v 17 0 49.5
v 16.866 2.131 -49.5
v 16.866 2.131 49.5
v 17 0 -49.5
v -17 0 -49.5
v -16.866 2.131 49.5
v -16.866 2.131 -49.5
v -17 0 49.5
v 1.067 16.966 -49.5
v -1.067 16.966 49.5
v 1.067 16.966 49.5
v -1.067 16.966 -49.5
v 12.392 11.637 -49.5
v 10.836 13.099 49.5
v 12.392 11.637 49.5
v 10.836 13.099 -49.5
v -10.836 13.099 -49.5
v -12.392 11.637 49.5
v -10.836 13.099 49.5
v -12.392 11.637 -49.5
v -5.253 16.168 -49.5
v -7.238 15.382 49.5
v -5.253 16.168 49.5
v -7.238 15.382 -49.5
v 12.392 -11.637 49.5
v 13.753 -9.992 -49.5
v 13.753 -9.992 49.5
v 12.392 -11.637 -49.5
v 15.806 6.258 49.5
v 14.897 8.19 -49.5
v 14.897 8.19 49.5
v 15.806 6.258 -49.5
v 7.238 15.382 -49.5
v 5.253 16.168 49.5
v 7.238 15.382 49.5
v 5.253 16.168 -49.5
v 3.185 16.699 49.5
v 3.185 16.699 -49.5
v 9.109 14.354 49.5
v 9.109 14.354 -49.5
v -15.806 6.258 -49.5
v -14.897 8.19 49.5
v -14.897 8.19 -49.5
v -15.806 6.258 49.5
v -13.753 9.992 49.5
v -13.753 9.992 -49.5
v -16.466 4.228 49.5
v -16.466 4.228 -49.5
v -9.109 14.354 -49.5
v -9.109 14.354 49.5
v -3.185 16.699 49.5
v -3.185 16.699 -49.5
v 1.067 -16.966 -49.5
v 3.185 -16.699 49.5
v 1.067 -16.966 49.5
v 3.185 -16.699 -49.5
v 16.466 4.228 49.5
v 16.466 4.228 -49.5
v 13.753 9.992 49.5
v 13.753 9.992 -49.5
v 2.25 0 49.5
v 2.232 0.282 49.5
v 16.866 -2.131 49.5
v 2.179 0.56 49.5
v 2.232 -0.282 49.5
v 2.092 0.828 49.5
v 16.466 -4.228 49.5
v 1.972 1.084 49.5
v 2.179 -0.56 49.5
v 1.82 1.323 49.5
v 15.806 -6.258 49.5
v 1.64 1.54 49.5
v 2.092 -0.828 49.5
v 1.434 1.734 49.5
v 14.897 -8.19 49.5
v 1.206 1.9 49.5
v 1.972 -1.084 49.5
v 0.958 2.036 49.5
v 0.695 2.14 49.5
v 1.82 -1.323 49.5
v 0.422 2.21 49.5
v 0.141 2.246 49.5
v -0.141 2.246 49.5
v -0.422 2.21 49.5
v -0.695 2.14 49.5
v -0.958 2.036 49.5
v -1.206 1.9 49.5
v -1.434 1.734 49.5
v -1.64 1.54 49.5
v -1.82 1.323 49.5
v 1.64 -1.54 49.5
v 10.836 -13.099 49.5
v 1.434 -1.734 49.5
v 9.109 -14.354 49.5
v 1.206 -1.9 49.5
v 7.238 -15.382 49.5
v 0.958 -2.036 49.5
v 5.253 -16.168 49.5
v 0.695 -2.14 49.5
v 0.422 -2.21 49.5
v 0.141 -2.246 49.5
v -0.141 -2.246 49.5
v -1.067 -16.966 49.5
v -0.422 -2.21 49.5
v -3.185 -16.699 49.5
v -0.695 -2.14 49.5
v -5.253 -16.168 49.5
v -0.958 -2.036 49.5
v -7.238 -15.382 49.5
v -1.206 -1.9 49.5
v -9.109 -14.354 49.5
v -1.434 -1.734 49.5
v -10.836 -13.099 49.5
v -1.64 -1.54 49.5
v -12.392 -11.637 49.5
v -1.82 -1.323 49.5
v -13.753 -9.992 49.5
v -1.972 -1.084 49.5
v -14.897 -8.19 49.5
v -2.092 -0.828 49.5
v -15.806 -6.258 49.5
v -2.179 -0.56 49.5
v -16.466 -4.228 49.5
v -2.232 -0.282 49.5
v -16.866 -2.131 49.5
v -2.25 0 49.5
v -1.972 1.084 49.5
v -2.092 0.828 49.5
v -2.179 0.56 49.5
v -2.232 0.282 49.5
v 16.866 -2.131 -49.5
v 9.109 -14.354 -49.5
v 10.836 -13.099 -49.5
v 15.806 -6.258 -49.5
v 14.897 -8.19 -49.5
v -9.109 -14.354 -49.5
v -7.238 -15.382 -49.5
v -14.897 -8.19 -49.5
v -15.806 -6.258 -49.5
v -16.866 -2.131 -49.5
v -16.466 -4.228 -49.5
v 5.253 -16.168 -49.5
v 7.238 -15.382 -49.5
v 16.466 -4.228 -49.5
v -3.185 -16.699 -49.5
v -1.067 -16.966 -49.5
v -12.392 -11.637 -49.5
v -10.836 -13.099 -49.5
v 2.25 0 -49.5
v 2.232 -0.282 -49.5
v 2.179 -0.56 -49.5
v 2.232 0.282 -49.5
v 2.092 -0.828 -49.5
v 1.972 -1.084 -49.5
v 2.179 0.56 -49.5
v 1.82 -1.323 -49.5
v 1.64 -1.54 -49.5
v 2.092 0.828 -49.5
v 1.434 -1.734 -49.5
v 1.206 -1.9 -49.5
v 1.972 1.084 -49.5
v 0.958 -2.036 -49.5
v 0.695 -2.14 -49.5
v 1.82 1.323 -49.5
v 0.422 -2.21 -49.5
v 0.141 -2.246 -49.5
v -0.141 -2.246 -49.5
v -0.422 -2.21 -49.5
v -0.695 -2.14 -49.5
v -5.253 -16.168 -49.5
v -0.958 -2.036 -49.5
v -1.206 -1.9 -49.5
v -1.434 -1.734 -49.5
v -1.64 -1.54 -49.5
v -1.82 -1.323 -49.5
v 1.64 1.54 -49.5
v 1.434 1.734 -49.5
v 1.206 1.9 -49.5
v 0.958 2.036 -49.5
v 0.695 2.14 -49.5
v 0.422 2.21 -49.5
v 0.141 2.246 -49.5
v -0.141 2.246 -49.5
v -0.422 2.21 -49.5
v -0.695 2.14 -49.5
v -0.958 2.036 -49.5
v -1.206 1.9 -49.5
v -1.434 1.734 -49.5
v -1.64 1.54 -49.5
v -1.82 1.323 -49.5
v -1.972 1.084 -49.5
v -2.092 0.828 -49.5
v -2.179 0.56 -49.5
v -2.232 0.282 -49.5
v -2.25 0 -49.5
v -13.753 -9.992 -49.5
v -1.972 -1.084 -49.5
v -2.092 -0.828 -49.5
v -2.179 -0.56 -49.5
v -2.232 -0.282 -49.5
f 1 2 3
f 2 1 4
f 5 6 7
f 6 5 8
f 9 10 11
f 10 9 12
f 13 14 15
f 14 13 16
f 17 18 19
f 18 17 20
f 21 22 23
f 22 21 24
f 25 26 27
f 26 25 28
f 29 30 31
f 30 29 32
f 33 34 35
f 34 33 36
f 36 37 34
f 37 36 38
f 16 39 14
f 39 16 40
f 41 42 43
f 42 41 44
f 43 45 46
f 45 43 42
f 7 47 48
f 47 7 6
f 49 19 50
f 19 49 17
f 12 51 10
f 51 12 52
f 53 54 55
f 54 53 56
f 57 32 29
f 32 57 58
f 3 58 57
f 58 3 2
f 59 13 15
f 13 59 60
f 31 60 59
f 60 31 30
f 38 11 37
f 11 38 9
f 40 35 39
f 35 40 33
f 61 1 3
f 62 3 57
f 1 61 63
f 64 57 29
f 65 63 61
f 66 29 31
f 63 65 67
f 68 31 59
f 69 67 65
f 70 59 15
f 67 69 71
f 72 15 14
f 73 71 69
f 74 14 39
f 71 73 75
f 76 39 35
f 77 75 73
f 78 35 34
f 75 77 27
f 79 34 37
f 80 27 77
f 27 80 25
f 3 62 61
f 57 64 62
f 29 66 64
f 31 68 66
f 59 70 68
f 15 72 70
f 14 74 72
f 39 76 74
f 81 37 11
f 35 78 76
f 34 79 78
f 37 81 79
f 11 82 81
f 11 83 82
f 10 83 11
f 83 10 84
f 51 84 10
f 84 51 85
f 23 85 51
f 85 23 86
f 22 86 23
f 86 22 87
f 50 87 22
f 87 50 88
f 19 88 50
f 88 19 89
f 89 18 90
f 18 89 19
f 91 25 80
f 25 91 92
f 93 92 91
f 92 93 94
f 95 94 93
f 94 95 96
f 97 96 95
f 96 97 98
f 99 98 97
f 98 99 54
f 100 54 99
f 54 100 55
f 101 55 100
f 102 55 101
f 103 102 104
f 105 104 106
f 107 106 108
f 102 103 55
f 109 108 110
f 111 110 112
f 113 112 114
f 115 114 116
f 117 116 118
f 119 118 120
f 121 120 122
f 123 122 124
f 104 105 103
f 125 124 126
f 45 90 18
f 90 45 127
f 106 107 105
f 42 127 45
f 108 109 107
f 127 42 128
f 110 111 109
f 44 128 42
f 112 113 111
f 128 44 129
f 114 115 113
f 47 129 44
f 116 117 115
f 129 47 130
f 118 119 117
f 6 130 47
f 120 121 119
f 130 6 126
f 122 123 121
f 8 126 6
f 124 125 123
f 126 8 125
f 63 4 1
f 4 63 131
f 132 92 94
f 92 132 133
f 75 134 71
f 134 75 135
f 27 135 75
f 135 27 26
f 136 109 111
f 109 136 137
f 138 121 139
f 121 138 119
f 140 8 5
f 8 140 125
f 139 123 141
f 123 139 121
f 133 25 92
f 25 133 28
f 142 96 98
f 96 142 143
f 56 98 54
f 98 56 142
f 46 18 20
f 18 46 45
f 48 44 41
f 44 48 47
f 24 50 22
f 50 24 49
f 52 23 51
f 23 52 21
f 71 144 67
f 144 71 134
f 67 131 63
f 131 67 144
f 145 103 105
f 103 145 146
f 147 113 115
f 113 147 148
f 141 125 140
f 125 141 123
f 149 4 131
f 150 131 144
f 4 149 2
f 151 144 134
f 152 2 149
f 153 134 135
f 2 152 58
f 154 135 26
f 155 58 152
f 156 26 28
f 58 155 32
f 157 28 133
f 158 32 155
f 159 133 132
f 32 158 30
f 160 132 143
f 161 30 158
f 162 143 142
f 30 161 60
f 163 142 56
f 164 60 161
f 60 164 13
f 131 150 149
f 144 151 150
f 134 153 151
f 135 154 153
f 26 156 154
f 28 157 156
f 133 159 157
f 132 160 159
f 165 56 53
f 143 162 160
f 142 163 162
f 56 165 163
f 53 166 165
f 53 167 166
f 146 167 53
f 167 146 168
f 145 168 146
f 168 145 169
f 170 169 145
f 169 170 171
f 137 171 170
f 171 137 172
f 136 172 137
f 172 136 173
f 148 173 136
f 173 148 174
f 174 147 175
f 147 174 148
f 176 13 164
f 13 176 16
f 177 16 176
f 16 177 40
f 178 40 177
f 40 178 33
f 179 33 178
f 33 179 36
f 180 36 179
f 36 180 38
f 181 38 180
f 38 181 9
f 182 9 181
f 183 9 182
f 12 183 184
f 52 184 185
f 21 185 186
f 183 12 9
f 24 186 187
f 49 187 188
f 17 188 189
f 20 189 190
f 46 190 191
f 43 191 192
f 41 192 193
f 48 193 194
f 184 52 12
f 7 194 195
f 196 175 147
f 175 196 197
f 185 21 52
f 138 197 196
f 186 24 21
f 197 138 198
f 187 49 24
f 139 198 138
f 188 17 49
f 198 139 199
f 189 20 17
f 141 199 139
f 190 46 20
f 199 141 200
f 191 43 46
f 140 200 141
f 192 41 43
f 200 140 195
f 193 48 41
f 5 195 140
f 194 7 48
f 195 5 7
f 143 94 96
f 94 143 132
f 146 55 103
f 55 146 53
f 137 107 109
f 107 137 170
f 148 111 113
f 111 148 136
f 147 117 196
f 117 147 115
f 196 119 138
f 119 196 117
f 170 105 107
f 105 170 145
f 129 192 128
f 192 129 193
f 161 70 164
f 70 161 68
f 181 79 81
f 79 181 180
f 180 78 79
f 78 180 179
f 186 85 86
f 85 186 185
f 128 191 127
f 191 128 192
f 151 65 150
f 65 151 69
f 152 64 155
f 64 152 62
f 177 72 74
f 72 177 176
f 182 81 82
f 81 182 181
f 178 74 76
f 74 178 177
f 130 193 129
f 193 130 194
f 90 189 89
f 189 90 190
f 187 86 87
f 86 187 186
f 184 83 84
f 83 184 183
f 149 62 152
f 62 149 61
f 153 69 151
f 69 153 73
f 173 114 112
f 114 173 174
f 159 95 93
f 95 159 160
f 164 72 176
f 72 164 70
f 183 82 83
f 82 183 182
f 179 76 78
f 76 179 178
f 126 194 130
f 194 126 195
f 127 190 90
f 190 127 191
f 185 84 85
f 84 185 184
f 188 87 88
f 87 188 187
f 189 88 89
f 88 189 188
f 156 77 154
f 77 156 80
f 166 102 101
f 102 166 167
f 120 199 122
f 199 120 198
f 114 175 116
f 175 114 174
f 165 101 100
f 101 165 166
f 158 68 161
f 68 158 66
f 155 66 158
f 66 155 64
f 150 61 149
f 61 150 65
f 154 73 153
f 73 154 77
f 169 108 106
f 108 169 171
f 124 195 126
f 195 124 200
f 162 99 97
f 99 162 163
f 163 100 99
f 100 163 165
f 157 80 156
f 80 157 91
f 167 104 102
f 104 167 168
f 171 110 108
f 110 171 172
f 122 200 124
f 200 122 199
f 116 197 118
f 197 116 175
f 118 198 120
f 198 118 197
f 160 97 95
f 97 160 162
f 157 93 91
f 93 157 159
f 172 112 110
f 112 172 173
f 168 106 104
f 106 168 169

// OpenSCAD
$fn = 50;


difference() {
	union() {
		translate(v = [0, 0, -49.5000000000]) {
			cylinder(h = 99, r = 17.0000000000);
		}
	}
	union() {
		translate(v = [0, 0, -100.0000000000]) {
			cylinder(h = 200, r = 2.2500000000);
		}
	}
}
